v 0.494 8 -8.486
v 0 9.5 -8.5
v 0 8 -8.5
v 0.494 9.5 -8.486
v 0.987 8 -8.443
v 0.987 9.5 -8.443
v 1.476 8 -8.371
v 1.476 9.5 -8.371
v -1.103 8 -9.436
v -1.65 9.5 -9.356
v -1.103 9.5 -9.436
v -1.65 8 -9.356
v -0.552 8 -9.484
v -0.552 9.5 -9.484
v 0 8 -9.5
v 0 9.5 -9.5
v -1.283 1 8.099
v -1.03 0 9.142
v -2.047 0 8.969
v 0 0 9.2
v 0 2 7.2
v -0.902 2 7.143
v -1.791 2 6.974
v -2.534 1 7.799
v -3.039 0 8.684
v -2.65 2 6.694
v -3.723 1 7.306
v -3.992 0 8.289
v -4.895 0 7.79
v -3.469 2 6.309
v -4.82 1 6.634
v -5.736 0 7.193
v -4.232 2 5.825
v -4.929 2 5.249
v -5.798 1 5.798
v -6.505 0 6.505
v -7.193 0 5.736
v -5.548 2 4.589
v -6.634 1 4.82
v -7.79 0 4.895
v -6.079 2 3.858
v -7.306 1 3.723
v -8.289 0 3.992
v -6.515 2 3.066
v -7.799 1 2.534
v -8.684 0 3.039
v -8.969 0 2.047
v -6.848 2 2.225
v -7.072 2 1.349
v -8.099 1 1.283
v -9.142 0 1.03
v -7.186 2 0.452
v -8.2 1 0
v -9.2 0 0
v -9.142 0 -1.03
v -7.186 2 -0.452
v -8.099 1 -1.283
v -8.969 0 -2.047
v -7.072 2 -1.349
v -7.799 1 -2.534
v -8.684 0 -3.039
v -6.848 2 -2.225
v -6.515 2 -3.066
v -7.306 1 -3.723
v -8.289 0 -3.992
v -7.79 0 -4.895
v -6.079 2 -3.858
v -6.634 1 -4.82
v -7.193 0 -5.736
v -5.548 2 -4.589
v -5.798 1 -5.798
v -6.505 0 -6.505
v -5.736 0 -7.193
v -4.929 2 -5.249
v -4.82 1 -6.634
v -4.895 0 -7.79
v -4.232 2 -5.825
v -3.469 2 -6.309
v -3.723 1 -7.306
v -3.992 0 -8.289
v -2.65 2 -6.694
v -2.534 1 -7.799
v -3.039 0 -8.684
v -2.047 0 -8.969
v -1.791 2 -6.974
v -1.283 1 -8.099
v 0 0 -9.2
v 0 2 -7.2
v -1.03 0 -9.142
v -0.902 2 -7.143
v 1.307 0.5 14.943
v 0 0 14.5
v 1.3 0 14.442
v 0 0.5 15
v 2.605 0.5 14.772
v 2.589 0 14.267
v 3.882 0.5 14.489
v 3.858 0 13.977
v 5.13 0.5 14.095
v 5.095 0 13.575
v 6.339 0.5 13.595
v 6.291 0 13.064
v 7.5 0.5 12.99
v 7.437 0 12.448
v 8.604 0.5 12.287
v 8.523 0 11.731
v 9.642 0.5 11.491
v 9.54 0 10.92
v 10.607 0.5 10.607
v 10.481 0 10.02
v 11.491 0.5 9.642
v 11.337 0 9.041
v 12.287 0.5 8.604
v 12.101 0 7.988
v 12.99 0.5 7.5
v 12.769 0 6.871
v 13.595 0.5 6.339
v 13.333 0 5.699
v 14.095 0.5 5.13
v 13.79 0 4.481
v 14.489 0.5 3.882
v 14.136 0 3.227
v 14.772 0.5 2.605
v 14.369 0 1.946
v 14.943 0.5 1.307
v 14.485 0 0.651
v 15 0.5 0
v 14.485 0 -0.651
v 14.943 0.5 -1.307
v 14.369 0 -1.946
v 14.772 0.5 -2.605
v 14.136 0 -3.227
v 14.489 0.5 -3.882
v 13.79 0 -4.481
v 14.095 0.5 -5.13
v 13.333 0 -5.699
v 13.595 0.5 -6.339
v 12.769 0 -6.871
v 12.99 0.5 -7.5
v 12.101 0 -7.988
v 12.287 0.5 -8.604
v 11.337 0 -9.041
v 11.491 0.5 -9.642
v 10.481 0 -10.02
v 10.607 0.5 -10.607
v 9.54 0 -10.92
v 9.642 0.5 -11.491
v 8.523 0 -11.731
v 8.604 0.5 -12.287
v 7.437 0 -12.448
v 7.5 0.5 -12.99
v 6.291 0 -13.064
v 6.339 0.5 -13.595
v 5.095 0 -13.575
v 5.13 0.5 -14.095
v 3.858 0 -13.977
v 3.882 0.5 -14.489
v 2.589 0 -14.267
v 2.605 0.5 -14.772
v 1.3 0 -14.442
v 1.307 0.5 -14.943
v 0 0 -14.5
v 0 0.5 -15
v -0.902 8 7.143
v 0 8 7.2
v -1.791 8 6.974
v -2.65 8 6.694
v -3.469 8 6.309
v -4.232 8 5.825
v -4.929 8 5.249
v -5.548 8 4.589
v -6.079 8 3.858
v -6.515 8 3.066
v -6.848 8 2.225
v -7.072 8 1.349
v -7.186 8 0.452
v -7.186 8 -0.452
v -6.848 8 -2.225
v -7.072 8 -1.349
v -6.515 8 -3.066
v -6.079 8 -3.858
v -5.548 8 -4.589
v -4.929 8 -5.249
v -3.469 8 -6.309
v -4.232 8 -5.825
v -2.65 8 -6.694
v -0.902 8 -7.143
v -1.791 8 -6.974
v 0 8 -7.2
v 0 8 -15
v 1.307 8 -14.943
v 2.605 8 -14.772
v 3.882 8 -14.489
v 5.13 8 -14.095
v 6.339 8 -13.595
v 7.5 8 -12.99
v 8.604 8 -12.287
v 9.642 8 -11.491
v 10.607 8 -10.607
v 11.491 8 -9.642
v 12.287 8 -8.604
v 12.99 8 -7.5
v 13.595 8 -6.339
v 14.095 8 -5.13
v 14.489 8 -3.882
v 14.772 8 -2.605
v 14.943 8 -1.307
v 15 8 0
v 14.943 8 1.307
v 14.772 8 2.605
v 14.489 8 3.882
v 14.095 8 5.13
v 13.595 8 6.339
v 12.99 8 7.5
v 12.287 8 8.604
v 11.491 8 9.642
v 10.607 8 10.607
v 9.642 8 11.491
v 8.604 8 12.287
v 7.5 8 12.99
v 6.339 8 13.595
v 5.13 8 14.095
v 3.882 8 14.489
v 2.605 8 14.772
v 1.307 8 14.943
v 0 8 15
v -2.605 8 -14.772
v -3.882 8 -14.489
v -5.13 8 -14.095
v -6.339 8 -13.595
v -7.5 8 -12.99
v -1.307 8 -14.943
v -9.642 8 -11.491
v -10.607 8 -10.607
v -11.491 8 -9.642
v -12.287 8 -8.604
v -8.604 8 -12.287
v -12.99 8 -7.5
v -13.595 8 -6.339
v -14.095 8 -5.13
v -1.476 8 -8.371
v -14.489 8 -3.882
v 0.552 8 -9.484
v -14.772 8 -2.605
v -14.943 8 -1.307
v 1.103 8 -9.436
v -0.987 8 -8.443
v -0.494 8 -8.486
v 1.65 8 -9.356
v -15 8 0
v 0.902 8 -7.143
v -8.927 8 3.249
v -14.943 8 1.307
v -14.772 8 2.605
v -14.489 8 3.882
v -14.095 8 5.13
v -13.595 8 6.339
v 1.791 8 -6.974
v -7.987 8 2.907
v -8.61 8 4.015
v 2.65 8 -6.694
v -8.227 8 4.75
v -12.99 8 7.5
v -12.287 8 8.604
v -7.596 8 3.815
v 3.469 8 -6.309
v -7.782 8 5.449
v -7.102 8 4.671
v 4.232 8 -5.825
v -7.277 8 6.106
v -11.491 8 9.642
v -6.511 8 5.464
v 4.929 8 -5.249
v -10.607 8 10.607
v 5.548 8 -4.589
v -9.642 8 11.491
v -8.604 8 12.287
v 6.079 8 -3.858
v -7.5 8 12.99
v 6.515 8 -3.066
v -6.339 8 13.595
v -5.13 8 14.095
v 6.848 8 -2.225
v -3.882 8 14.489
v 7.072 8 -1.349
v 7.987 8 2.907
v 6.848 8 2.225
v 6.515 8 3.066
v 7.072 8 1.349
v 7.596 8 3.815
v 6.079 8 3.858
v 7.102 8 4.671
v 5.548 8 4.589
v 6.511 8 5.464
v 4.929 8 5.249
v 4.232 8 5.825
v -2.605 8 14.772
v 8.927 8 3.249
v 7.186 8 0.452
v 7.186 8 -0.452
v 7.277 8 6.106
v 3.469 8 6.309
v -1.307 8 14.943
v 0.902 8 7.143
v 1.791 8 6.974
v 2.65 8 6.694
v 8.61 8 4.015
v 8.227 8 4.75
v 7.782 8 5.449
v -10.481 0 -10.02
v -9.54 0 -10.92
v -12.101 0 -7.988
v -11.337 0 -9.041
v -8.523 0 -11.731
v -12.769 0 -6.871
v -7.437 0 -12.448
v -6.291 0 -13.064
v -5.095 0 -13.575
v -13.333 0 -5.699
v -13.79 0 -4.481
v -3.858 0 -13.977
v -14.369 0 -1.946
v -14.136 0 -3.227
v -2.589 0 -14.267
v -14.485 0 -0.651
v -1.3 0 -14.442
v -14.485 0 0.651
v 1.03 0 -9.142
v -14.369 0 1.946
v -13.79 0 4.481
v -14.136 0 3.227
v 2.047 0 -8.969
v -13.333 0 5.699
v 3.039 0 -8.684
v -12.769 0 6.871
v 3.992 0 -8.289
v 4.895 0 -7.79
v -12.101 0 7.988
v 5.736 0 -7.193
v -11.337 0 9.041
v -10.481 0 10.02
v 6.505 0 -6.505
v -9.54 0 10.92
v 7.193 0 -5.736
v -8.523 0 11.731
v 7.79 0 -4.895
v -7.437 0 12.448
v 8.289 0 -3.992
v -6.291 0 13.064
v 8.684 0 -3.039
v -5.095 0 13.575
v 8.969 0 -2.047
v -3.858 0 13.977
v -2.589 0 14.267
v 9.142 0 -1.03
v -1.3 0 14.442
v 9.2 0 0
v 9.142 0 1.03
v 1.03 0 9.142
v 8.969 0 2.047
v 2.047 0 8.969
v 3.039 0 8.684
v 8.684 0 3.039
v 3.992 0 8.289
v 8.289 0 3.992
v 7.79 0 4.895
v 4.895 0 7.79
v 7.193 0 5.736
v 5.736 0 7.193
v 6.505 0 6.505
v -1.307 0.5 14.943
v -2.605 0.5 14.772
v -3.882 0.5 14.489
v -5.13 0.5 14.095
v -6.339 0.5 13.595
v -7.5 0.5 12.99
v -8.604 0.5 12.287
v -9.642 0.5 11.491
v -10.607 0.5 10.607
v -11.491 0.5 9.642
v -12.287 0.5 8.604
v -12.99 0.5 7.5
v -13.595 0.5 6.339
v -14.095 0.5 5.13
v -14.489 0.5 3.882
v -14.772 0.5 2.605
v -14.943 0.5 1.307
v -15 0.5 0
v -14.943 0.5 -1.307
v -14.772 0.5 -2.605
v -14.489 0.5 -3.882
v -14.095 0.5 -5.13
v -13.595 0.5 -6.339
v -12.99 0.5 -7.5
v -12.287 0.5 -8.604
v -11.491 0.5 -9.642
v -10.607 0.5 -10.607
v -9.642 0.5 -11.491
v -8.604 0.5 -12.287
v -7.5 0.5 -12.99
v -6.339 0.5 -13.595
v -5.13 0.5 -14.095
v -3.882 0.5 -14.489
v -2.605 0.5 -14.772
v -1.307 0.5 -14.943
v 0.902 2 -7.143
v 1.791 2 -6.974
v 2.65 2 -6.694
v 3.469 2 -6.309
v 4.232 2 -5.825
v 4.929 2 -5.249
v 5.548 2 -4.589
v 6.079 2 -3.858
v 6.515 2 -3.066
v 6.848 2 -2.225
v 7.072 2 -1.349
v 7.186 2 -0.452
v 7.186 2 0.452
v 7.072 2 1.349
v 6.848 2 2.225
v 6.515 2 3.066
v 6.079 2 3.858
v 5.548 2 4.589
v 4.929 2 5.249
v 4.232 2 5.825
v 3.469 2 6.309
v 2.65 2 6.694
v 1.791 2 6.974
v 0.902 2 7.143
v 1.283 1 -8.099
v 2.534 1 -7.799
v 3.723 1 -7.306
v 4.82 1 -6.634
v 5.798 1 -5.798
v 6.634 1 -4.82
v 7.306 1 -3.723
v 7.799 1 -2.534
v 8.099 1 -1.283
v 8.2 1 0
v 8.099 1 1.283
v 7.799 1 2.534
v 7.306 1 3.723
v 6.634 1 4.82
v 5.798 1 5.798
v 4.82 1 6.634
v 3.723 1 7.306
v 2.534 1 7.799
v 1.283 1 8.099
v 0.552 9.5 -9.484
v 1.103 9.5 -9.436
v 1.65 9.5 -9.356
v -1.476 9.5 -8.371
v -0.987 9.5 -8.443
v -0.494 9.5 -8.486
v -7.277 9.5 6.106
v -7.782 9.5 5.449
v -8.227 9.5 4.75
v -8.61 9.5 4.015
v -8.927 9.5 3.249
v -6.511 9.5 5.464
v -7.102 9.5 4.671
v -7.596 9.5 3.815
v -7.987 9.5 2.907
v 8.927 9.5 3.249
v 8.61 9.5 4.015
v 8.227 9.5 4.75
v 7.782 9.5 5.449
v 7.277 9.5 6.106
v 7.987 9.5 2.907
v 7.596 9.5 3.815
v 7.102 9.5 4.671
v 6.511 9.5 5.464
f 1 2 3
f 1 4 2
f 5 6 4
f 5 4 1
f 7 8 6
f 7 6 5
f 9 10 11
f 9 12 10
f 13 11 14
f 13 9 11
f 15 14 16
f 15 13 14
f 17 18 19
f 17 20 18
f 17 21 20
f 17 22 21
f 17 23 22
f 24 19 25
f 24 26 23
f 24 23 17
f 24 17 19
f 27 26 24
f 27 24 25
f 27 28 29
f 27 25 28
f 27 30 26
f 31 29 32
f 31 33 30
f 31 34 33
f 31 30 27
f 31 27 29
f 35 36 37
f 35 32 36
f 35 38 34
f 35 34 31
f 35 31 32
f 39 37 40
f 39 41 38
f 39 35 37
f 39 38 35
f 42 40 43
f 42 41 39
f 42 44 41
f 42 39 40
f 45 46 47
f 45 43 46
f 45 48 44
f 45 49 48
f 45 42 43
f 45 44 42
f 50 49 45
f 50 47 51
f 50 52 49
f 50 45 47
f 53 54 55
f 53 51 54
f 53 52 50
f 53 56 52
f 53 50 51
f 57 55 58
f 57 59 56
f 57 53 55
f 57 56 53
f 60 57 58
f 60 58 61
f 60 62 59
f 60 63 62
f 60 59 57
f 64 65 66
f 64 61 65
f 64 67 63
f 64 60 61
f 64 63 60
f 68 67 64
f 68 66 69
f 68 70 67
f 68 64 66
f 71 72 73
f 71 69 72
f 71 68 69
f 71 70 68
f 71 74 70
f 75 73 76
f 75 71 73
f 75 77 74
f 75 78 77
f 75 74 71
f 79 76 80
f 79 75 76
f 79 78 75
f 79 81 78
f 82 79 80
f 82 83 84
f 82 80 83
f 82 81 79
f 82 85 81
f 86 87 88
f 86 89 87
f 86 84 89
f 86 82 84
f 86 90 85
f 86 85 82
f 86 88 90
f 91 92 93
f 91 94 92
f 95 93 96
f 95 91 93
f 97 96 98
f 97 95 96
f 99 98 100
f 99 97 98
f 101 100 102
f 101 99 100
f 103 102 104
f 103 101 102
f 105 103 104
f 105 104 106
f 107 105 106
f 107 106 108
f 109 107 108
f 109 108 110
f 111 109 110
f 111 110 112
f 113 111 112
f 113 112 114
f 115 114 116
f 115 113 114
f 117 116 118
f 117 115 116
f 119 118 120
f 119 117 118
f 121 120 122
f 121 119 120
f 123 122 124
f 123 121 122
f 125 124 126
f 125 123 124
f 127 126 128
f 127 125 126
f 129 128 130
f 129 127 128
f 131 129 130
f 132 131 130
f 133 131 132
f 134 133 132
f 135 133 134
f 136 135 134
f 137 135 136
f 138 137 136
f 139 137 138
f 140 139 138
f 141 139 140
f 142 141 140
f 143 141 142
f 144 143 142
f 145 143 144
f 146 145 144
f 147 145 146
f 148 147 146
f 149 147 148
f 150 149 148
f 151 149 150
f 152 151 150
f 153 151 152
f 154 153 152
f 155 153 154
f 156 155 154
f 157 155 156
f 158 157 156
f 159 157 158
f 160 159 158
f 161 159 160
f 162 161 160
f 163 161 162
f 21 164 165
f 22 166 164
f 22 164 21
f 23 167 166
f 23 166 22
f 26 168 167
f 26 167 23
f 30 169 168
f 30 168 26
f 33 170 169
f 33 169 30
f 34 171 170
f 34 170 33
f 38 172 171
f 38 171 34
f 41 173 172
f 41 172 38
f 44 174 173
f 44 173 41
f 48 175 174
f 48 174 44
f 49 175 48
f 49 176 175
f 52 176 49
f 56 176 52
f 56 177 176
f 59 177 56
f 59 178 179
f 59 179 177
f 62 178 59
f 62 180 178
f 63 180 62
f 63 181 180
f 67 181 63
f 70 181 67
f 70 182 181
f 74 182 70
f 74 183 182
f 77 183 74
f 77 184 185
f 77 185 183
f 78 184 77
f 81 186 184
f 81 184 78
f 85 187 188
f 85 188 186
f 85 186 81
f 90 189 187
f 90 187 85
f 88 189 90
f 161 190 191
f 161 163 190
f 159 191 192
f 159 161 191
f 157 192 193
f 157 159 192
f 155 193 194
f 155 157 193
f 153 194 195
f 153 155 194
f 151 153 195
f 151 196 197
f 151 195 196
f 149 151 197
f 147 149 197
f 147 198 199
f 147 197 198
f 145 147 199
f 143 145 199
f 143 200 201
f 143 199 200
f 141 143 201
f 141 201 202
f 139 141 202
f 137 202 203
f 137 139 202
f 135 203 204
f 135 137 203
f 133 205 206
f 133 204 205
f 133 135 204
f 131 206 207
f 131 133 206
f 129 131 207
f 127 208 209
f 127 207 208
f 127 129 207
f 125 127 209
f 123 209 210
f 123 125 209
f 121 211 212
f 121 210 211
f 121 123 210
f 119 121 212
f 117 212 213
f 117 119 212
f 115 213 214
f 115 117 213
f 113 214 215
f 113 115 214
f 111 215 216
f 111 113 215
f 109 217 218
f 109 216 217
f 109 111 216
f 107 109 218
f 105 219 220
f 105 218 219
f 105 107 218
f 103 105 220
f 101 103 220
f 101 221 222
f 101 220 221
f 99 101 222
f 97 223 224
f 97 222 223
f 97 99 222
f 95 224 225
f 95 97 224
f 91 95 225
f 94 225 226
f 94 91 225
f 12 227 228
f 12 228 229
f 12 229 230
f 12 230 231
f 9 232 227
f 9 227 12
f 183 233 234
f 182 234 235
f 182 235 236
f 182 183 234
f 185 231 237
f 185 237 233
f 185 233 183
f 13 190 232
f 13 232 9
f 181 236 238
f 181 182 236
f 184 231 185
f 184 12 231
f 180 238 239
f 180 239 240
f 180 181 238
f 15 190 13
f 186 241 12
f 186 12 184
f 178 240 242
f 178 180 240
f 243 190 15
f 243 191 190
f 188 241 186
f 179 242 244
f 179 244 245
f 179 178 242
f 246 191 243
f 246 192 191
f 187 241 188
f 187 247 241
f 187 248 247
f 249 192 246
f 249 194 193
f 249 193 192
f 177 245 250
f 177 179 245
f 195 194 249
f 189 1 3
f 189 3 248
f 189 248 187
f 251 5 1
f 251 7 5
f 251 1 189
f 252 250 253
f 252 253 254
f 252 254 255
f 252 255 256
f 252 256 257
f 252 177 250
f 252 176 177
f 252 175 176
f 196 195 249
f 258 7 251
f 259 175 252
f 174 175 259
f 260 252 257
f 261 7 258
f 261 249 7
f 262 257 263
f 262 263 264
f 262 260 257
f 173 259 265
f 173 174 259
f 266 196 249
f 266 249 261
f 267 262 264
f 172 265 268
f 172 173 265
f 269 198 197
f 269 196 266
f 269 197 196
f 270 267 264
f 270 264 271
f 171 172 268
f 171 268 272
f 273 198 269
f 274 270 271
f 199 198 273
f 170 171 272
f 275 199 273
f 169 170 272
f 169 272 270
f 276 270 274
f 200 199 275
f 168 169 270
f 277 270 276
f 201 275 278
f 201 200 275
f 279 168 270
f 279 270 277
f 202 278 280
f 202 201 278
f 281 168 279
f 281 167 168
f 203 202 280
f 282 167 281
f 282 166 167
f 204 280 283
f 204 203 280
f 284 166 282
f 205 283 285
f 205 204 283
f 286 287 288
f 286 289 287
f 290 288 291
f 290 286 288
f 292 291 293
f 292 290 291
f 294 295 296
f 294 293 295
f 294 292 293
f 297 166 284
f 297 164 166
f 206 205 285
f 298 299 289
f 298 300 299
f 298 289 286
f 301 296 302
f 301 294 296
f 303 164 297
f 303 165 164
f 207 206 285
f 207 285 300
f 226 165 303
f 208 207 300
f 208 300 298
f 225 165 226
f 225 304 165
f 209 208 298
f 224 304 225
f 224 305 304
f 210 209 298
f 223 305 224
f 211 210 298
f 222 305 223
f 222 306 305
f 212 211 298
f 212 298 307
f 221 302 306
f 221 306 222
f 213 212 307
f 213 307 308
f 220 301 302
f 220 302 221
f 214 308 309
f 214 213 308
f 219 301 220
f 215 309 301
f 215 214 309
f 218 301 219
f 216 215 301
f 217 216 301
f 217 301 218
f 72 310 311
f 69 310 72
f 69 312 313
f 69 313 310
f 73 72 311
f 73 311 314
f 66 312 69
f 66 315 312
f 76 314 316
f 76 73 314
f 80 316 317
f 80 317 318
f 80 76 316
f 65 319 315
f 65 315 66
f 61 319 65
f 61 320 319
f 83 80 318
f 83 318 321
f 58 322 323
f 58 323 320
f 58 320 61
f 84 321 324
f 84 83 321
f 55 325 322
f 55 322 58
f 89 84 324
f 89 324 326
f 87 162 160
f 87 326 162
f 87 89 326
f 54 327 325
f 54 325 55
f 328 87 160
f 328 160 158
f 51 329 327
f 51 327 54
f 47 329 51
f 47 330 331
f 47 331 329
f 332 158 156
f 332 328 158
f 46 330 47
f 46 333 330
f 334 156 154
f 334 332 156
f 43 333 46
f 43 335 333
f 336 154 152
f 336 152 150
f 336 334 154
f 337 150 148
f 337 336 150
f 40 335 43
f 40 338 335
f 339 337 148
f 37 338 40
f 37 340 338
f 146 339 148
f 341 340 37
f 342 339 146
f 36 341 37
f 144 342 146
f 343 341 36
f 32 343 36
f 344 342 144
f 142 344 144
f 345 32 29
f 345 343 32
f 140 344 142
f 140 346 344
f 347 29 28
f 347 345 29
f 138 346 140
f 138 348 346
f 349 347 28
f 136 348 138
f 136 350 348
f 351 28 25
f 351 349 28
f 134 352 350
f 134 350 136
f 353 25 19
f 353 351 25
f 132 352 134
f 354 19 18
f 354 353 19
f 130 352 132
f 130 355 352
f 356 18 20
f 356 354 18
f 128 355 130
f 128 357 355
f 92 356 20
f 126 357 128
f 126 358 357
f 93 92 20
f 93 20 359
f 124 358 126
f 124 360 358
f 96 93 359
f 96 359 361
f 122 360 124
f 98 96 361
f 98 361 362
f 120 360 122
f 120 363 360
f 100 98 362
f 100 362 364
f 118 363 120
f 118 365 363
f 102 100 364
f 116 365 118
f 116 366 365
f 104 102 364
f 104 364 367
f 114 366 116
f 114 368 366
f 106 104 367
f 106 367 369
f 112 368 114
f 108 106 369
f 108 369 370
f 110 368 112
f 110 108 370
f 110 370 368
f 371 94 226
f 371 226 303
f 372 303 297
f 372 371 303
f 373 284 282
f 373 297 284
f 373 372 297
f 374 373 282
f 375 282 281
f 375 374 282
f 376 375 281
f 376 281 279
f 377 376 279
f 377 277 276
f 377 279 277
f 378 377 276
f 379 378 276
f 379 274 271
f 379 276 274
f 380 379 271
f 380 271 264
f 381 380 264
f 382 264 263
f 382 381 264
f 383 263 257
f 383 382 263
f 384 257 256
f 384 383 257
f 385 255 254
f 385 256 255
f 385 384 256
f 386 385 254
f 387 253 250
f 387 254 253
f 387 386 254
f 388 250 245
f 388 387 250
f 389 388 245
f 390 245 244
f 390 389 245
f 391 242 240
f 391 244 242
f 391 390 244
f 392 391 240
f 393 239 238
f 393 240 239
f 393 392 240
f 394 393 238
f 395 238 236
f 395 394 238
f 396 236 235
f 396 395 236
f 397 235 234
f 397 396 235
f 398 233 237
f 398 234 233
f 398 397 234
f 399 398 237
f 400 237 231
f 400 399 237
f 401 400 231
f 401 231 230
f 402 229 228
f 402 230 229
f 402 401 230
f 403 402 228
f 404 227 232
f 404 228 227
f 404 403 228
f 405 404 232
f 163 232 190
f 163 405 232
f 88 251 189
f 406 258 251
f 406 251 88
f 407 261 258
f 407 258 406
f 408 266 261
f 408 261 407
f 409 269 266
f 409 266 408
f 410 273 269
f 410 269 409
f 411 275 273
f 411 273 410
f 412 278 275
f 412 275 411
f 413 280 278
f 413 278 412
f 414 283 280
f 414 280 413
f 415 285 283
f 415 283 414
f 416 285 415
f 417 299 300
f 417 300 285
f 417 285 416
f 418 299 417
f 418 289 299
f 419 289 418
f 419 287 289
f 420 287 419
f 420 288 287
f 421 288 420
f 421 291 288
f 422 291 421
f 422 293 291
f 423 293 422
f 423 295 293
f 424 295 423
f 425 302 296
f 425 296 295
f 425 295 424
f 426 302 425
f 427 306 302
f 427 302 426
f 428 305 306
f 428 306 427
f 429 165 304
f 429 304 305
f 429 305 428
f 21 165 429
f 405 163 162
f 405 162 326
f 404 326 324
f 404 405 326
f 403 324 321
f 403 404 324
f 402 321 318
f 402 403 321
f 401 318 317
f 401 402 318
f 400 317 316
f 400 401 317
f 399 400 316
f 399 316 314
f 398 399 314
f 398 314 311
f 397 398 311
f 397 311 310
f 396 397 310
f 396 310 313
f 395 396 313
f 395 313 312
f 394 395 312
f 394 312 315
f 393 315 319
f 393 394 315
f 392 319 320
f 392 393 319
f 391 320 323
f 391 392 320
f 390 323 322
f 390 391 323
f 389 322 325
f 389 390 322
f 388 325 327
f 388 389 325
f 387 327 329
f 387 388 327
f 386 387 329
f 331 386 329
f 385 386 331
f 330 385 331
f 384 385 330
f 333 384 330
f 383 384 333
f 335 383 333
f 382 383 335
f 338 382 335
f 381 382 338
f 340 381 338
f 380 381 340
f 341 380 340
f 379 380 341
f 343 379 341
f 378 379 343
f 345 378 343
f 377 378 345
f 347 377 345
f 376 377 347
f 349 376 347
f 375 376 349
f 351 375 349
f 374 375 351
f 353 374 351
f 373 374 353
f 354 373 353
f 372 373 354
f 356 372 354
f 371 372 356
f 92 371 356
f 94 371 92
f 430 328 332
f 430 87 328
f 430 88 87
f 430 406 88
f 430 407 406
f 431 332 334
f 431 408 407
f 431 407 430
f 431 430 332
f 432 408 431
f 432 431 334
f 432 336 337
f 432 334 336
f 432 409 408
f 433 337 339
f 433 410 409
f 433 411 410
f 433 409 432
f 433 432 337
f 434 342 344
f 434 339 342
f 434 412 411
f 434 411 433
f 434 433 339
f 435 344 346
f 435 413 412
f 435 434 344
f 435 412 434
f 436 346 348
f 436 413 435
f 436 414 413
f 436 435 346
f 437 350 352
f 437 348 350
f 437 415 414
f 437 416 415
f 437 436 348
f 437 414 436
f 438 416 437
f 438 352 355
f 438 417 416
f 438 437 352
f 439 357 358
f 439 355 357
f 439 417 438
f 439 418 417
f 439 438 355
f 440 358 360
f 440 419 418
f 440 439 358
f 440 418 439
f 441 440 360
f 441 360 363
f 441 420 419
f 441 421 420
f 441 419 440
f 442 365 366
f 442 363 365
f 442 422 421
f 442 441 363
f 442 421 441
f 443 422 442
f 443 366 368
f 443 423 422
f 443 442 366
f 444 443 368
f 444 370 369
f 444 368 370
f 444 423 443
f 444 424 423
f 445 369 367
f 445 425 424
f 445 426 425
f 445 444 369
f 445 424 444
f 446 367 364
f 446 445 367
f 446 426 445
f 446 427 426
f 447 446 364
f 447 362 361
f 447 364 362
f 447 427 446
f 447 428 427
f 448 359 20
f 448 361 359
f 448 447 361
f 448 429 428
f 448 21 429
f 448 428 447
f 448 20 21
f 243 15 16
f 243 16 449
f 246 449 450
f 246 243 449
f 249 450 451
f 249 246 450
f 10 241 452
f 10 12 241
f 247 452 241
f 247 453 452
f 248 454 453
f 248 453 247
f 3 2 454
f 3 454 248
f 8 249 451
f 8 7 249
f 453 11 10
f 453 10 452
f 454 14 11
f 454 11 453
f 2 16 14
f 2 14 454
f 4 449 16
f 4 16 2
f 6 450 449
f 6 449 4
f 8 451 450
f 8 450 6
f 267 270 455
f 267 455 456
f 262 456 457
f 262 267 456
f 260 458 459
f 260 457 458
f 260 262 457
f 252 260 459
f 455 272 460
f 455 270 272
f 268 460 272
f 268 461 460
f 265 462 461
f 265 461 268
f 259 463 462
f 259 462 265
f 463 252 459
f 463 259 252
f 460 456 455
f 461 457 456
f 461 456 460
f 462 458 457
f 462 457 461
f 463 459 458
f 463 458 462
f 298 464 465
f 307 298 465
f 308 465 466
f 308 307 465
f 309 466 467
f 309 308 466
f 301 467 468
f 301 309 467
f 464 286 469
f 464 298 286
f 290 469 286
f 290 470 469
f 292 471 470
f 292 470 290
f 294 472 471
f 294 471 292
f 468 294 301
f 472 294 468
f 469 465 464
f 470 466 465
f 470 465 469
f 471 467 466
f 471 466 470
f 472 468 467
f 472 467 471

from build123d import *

# Parameters (mm, degrees)
SKETCH_1_R               = 15
SKETCH_1_R_2             = 7.2
EXTRUDE_1_DEPTH          = 8
CHAMFER_1_SIZE           = 0.5
CHAMFER_2_SIZE           = 2
EXTRUDE_2_DEPTH          = 1.5
PATTERN_CIRCULAR_1_COUNT = 3


with BuildPart() as part:
    # 草图1 → 凸台-拉伸1 (new body)
    with BuildSketch(Plane(origin=(0, 0, 0), x_dir=(1, 0, 0), z_dir=(0, 1, 0))):
        with Locations(Location((0, 0, 0), (0, 0, 270))):
            Circle(SKETCH_1_R)
        with Locations(Location((0, 0, 0), (0, 0, 270))):
            Circle(SKETCH_1_R_2, mode=Mode.SUBTRACT)
    extrude(amount=EXTRUDE_1_DEPTH)

    # 倒角1
    chamfer_1_edges = [part.edges().sort_by_distance(p)[0] for p in [
        (0, 0, -15),
    ]]
    chamfer(chamfer_1_edges, length=CHAMFER_1_SIZE)

    # 倒角2
    chamfer_2_edges = [part.edges().sort_by_distance(p)[0] for p in [
        (0, 0, -7.2),
    ]]
    chamfer(chamfer_2_edges, length=CHAMFER_2_SIZE)

    # 草图2 → 凸台-拉伸2 (add)
    with BuildSketch(Plane(origin=(0, 8, 0), x_dir=(1, 0, 0), z_dir=(0, 1, 0))):
        with BuildLine():
            Line((1.649657688, 9.355673654), (1.47600951, 8.370865901))
            ThreePointArc((1.47600951, 8.370865901), (0, 8.5), (-1.47600951, 8.370865901))
            Line((-1.47600951, 8.370865901), (-1.649657688, 9.355673654))
            ThreePointArc((-1.649657688, 9.355673654), (0, 9.5), (1.649657688, 9.355673654))
        make_face()
    extrude_2 = extrude(amount=EXTRUDE_2_DEPTH)

    # 阵列(圆周)1: 凸台-拉伸2 ×3 about axis
    pattern_circular_1_axis = Axis((0, 0, 0), (0, 1, 0))
    for i in range(1, PATTERN_CIRCULAR_1_COUNT):
        add(extrude_2.rotate(pattern_circular_1_axis, i * 360 / PATTERN_CIRCULAR_1_COUNT))


solid = part.part
